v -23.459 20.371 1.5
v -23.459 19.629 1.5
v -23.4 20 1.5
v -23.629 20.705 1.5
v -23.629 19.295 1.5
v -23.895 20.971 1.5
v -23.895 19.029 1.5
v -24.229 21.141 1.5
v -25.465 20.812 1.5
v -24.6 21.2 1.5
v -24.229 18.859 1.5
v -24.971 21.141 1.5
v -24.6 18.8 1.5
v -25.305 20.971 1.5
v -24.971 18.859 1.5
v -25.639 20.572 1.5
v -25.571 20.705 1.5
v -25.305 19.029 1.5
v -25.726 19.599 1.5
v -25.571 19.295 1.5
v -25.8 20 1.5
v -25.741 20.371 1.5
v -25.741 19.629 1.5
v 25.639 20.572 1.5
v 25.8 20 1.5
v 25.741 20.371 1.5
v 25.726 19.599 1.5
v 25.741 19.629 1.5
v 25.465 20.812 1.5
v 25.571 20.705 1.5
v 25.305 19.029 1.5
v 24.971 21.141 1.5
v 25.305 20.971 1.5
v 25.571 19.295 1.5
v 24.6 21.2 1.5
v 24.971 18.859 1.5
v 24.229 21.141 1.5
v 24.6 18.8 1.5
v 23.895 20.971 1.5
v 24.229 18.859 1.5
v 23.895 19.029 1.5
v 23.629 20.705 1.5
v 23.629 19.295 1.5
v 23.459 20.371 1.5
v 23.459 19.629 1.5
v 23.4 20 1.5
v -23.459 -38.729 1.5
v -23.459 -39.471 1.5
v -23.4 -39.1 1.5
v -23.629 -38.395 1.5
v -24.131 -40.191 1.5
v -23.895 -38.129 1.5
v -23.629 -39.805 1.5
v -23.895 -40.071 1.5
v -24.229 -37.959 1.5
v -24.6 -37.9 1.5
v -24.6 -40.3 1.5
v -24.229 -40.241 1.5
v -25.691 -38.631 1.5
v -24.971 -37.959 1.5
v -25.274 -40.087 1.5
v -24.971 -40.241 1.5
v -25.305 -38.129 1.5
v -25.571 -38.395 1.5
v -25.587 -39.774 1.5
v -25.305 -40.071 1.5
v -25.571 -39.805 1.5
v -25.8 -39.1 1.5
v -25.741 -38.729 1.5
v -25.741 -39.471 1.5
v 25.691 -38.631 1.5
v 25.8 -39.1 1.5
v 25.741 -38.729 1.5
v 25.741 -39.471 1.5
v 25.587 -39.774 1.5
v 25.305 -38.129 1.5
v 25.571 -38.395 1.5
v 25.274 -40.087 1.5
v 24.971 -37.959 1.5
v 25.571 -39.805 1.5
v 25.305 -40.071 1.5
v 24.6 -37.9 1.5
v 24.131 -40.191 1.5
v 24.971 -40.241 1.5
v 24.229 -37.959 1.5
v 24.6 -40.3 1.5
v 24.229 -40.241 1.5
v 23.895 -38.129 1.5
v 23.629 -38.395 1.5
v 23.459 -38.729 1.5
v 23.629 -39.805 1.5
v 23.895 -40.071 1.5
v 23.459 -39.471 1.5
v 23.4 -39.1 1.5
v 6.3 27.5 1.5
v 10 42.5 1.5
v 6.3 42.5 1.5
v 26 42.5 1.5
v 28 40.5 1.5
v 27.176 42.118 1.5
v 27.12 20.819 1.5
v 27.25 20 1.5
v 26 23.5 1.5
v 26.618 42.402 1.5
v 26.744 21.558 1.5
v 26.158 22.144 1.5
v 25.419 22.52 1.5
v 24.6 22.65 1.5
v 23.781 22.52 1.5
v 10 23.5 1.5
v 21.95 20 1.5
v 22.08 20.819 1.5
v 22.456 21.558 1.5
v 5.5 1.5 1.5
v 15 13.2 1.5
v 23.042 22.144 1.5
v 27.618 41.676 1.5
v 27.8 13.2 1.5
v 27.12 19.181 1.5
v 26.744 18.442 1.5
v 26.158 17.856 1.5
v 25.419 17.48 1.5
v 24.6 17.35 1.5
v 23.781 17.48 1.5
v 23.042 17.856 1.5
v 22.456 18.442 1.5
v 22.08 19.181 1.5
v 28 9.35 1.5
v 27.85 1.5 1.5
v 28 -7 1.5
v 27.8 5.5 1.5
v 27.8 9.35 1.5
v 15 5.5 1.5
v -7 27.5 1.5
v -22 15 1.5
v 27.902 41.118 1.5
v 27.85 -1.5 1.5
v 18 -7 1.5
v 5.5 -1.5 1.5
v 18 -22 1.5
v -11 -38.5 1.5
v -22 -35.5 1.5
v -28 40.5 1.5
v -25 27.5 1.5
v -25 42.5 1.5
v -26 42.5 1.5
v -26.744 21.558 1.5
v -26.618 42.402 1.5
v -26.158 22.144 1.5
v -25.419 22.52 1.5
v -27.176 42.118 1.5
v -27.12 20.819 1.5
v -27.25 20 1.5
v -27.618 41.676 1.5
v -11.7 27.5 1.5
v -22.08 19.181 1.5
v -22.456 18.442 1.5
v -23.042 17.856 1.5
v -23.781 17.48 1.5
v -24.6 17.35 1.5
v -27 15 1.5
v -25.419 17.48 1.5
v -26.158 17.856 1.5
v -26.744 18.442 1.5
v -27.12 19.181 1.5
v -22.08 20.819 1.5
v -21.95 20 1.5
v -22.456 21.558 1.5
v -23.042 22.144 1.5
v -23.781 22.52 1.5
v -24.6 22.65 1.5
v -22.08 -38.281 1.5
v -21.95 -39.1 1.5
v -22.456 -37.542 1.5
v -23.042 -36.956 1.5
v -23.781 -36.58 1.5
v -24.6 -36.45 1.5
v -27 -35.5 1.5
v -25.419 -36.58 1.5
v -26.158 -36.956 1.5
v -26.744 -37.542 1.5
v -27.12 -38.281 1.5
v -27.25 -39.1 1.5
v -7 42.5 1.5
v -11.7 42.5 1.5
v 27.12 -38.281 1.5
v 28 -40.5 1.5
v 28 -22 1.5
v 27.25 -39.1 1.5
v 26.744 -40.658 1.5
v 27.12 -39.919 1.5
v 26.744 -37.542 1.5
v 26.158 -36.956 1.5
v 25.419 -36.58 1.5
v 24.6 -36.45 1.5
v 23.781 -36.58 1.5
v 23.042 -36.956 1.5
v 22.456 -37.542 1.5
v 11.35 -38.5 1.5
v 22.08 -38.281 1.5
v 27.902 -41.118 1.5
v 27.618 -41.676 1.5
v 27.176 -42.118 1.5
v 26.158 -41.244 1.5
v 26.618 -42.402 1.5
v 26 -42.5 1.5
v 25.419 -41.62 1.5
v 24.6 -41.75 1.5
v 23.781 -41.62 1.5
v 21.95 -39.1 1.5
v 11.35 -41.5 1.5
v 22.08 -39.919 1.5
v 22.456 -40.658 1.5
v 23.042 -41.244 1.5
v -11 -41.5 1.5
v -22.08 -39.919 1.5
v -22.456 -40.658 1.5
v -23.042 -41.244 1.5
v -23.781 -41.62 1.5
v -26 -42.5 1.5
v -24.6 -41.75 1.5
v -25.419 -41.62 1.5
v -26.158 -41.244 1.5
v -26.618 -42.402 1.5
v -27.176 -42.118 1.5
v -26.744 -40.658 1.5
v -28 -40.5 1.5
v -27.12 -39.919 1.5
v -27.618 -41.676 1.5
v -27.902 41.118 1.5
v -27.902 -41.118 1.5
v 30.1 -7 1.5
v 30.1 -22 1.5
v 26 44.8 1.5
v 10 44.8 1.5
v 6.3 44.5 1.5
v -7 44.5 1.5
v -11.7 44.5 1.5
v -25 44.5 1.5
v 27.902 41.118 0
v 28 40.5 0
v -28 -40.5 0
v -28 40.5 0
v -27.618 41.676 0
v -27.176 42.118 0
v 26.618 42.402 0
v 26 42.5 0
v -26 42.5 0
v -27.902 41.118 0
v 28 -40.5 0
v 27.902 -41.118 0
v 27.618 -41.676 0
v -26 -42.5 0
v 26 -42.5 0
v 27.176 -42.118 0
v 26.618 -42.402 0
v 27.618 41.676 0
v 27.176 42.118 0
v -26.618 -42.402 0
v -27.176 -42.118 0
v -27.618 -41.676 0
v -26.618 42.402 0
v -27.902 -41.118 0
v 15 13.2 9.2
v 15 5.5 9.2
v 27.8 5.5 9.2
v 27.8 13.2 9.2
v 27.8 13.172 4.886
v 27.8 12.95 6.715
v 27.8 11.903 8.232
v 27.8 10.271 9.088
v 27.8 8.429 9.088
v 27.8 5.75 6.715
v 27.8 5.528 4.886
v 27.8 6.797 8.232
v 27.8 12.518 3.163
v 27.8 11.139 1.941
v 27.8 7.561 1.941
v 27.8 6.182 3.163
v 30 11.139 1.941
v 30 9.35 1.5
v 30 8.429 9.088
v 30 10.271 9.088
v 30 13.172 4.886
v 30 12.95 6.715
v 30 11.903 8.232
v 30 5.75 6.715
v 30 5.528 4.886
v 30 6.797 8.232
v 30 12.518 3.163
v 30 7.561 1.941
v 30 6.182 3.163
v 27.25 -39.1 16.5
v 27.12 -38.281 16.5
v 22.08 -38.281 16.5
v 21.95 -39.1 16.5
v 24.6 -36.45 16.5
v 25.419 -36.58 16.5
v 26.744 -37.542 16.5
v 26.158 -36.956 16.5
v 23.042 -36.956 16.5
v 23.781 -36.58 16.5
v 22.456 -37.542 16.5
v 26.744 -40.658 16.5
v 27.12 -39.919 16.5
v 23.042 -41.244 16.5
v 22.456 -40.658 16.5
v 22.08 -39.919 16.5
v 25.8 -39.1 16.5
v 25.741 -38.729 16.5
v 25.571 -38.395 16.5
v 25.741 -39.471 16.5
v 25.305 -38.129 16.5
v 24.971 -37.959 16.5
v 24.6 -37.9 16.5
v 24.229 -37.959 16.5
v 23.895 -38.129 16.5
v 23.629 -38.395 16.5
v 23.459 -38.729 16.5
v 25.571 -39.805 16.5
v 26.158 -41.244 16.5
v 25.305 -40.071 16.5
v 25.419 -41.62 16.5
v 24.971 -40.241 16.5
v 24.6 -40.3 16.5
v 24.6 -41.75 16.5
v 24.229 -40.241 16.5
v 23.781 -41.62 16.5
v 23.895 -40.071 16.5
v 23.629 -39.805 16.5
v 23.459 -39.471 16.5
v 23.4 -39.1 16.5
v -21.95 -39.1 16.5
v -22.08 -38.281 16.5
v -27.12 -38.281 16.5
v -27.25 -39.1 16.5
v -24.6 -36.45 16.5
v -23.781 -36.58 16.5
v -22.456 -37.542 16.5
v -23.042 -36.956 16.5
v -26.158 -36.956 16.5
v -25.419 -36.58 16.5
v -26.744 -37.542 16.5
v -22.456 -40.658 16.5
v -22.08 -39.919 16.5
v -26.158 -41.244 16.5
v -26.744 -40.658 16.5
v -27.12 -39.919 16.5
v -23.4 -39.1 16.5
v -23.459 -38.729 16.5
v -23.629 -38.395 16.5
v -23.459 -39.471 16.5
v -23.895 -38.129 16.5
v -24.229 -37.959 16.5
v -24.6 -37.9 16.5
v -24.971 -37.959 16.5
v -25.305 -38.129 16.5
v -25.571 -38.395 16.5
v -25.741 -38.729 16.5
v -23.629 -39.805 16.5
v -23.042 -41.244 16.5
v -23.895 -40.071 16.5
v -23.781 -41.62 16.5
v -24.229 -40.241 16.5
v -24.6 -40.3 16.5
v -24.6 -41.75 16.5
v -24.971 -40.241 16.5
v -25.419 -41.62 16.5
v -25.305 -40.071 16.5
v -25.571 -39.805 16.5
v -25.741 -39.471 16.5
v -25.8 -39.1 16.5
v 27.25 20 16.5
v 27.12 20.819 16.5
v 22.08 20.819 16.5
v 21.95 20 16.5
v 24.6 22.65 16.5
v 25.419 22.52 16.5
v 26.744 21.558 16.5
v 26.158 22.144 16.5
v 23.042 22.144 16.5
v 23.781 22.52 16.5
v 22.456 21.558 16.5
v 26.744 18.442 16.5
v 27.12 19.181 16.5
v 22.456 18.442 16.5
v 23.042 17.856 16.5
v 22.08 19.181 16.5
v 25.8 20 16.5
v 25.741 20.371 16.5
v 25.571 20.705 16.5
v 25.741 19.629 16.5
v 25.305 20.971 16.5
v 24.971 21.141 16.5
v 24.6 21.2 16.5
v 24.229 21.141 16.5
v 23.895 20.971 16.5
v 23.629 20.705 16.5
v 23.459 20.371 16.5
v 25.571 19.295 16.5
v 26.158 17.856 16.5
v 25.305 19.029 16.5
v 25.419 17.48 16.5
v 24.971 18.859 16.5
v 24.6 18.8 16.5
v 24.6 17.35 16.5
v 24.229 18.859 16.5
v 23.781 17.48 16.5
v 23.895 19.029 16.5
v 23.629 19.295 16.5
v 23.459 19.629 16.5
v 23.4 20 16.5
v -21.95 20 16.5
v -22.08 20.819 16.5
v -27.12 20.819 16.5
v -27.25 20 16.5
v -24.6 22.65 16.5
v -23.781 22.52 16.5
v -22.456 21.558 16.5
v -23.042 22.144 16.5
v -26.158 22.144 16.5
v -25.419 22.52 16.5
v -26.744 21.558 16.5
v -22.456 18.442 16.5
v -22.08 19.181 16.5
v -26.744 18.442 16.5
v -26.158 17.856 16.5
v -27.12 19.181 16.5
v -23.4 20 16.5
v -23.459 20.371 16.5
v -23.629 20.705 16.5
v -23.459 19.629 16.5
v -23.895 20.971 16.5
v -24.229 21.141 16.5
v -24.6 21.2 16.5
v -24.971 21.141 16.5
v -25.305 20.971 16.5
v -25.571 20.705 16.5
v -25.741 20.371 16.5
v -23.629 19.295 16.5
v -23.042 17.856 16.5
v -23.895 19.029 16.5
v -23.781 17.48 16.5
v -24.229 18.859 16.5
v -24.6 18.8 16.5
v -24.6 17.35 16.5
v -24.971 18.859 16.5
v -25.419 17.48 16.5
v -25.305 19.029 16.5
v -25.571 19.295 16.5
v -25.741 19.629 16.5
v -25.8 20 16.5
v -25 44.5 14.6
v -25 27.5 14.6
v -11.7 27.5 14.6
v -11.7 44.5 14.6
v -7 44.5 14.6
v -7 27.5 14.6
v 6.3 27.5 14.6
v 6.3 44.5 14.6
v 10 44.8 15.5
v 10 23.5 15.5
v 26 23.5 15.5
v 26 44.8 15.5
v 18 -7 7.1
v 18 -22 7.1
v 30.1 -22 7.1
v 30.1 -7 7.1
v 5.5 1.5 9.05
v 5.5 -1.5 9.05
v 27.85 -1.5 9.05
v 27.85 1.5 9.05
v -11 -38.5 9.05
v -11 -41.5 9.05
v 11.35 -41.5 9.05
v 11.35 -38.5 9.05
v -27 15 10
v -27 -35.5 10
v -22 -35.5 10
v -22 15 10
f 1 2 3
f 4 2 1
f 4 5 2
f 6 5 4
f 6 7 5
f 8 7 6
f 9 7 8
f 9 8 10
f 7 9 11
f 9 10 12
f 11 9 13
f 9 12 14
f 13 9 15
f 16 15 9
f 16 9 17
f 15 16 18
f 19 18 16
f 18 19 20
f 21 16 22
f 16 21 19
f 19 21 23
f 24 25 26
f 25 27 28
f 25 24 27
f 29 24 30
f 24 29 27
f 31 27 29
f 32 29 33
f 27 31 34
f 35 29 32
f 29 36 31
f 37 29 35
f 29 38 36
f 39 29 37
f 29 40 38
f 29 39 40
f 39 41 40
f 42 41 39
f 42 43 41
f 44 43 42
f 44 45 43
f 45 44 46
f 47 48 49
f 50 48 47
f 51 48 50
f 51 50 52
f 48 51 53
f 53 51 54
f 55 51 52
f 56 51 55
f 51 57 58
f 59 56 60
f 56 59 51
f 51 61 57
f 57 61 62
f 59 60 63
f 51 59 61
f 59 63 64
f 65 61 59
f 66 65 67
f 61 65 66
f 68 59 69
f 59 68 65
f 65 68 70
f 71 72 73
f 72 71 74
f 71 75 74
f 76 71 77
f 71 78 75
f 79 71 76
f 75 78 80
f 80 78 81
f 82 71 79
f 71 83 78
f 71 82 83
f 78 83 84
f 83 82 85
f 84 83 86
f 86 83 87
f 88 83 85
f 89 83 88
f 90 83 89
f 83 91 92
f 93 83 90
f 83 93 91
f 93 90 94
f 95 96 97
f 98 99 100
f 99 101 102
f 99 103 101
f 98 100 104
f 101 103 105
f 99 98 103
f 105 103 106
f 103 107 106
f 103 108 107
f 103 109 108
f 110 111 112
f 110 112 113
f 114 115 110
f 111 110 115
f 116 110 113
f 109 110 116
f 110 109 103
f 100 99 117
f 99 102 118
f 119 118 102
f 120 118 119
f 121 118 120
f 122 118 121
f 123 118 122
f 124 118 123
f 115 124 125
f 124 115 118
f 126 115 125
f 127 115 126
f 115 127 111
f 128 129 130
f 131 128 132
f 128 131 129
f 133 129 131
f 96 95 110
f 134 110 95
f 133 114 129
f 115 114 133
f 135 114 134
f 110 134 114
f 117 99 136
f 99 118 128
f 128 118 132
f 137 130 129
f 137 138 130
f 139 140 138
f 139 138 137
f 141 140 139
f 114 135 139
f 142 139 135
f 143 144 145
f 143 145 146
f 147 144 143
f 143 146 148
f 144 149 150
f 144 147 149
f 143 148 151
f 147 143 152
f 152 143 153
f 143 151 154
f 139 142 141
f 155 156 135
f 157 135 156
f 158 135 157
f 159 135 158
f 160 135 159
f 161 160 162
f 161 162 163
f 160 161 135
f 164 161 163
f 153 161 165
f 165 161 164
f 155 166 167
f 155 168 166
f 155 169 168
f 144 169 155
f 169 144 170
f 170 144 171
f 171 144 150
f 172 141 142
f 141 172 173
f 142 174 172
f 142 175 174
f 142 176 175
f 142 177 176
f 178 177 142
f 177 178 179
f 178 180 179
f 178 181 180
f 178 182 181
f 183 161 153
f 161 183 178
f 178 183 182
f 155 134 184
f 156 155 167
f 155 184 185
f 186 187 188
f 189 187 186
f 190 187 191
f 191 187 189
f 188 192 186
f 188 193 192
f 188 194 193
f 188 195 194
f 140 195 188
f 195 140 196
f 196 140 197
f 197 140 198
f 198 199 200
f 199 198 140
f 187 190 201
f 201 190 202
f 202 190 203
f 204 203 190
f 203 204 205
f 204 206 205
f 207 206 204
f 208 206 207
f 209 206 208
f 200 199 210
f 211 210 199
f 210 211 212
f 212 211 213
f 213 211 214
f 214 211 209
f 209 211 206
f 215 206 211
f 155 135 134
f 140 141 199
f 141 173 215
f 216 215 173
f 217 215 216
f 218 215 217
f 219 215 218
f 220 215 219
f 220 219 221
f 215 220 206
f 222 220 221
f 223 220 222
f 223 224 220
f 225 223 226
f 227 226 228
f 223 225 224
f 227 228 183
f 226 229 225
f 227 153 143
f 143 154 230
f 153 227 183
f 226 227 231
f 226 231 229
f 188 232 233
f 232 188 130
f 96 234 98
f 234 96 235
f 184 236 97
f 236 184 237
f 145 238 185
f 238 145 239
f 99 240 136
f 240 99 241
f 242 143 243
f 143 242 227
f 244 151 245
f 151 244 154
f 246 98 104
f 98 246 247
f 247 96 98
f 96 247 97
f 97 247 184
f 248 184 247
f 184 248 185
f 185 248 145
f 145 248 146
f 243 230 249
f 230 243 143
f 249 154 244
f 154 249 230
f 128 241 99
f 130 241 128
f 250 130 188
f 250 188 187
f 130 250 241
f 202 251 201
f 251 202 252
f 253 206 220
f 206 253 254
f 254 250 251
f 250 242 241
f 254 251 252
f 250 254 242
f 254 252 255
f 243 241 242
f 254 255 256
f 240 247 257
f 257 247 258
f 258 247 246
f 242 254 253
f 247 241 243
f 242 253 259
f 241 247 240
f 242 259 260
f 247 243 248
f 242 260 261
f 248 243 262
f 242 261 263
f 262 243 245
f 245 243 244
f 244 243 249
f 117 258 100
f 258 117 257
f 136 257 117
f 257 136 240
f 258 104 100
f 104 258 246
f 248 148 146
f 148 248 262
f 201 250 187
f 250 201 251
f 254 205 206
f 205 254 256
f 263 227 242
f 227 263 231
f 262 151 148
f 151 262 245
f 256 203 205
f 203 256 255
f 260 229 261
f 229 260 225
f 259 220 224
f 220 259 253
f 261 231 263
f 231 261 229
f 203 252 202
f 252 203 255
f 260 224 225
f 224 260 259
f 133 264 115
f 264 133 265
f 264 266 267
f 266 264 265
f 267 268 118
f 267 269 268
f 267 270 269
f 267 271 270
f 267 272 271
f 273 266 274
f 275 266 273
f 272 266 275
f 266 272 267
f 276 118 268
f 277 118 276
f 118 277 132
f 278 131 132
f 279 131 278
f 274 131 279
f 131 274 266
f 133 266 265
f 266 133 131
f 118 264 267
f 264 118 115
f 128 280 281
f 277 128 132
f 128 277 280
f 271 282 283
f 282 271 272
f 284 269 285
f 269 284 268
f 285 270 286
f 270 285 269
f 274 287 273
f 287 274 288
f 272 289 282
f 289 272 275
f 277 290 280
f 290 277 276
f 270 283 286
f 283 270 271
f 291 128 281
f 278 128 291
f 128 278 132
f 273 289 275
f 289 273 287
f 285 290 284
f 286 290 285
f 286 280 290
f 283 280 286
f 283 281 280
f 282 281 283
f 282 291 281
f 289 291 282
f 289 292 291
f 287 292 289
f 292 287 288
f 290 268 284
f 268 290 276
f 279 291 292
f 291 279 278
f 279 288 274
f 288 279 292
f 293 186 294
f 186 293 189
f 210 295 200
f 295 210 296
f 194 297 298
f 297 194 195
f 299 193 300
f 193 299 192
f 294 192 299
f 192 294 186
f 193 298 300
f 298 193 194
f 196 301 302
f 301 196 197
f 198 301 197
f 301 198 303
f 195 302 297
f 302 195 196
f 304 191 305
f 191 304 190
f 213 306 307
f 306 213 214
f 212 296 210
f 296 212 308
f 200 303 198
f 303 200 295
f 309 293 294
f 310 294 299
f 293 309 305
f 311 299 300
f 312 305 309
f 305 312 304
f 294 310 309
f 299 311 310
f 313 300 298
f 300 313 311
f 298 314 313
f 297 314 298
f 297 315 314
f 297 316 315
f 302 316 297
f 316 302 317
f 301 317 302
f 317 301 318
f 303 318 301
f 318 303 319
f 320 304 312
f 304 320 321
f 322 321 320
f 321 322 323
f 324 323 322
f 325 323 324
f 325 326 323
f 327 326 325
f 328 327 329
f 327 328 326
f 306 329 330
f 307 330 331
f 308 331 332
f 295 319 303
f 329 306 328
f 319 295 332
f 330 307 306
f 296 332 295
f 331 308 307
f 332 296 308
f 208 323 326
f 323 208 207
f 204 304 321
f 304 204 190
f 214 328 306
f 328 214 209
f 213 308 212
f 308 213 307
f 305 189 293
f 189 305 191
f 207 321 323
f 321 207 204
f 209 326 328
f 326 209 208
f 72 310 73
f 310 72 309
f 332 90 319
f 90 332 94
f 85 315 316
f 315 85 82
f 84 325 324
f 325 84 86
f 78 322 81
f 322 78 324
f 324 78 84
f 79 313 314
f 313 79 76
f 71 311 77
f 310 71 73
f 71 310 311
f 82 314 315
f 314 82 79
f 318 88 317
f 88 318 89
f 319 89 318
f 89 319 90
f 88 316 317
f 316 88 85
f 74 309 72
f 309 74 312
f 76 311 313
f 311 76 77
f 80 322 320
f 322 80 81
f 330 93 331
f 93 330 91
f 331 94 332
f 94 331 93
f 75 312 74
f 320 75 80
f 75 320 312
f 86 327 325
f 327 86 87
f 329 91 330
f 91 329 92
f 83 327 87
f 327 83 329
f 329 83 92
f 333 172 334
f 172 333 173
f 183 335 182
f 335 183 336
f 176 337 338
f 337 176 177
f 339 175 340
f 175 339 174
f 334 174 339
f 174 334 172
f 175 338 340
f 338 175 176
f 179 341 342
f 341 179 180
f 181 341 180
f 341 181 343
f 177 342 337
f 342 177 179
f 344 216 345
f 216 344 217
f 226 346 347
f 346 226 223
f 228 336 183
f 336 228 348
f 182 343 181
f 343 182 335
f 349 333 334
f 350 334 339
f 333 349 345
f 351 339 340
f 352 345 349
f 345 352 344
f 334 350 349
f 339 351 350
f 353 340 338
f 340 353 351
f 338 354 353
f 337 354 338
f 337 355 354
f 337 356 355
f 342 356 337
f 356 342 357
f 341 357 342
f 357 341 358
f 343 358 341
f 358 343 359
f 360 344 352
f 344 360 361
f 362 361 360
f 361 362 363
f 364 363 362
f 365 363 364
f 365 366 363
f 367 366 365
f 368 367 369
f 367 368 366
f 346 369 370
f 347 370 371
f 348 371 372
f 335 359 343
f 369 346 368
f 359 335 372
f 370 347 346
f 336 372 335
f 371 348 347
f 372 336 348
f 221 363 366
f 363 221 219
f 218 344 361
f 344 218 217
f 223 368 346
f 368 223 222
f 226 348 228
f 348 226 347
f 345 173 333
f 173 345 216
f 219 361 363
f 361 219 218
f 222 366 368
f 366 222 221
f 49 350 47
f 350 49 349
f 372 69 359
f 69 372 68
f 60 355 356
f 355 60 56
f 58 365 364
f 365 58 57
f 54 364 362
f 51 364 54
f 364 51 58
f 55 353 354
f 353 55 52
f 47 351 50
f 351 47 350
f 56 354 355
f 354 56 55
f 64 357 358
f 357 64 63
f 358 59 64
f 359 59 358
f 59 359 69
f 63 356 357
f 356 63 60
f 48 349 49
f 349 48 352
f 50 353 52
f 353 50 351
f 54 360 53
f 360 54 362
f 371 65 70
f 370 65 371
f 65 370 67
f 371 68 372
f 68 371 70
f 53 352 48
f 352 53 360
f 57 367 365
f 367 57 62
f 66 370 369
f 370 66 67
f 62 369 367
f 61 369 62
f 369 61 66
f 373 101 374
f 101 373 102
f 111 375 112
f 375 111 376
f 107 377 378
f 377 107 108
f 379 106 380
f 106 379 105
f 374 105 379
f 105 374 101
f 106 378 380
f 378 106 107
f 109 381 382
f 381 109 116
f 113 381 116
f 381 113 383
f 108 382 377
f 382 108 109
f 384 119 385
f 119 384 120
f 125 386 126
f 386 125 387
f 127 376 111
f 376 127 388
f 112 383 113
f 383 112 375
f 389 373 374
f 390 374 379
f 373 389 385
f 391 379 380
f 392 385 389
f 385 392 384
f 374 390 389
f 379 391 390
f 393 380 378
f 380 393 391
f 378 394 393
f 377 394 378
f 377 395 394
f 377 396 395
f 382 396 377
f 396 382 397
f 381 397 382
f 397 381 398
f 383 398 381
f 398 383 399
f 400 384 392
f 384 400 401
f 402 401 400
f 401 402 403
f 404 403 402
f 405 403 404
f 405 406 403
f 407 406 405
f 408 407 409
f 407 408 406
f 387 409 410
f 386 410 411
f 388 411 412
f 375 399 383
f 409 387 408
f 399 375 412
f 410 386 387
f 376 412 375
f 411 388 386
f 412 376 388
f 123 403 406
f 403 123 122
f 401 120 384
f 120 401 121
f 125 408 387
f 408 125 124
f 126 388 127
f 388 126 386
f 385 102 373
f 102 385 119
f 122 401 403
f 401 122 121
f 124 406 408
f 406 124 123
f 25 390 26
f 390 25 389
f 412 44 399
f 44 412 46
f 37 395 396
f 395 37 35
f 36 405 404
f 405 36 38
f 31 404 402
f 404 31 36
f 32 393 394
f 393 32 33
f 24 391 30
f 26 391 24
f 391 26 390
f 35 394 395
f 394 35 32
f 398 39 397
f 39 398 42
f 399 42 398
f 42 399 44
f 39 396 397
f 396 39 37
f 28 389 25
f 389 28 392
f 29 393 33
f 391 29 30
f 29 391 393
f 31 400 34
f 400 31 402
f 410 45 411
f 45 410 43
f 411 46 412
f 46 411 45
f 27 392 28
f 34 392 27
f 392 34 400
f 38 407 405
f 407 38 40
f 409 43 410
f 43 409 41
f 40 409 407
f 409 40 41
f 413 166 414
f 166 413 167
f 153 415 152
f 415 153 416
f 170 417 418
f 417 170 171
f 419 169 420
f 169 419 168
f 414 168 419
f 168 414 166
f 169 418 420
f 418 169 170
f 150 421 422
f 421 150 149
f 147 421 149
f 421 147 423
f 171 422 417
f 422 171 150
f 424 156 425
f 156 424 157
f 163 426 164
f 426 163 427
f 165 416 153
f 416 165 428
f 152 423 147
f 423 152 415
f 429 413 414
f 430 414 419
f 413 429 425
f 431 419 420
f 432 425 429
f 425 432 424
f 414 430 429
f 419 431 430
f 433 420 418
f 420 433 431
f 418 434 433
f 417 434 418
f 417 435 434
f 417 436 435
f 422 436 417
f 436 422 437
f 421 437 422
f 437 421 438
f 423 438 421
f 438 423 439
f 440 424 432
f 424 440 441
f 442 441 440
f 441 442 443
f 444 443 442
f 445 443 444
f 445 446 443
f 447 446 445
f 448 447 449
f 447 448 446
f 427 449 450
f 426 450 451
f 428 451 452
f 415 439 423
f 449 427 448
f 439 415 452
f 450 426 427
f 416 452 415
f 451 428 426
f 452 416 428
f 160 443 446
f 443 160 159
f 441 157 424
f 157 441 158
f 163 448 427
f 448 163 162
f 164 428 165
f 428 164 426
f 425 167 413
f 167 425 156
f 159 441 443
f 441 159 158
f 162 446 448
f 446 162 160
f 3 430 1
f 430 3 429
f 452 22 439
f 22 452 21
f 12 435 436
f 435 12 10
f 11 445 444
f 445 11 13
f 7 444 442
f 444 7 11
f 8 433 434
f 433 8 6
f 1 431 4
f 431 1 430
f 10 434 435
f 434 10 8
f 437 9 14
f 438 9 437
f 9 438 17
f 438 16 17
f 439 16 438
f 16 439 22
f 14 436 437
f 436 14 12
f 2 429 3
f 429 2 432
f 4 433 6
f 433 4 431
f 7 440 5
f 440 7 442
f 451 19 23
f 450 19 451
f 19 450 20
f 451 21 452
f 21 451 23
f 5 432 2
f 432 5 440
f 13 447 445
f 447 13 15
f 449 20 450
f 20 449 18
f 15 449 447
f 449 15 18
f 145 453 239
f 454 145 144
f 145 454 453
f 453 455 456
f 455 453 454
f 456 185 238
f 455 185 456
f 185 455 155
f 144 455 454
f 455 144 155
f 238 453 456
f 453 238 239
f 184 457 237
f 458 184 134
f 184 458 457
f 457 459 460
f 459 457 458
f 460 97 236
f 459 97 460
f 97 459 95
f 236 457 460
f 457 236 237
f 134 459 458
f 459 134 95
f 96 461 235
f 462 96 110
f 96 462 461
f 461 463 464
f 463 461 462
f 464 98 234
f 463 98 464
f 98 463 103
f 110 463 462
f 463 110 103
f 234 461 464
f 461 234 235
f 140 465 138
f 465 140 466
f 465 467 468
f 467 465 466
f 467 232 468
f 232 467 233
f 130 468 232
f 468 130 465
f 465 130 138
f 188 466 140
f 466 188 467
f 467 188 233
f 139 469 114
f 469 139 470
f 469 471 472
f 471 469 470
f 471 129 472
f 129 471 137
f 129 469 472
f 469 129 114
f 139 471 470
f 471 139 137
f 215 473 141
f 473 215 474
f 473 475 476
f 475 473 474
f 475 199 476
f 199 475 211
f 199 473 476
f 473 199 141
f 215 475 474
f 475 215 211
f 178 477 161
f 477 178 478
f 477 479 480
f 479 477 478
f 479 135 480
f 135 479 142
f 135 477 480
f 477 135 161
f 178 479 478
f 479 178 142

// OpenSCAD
module pi_board_holes(pi_dims, hole_positions, hole_diameter, fn) {
    echo(hole_diameter);
    for( pos = hole_positions)
        translate([pos[0], pos[1], pos[2]]) 
            cylinder(d=hole_diameter, h=pos[2], $fn=fn);
}

module pi_board(pi_dims, corner_radius, pi_hole_positions, hole_diameter, fn) {
    x = pi_dims[0]/2 - corner_radius;
    y = pi_dims[1]/2 - corner_radius;
//    translate([0, 0, pi_dims[2]/2])
        difference(){
            hull() {
                translate([ x, y, 0]) cylinder(r=corner_radius, h=pi_dims[2], $fn=fn);
                translate([-x, y, 0]) cylinder(r=corner_radius, h=pi_dims[2], $fn=fn);
                translate([ x,-y, 0]) cylinder(r=corner_radius, h=pi_dims[2], $fn=fn);
                translate([-x,-y, 0]) cylinder(r=corner_radius, h=pi_dims[2], $fn=fn);
            }
            pi_board_holes(pi_dims, pi_hole_positions, hole_diameter, fn);
        };
}

module pi_top_posts(hole_positions, post_h, post_d, hole_d, fn) {
    for( pos = hole_positions)
        translate([pos[0], pos[1], pos[2]]) 
            difference(){
                cylinder(d=post_d, h=post_h, $fn=fn);
                cylinder(d=hole_d, h=post_h, $fn=fn);
            };
}

module usb_plug() {
    cube([13.3, 17.0, 13.1]);
}

module eth_plug() {
    cube([16.0, 21.3, 14.0]);
}

module hdmi_socket() {
    cube([12.1, 15.0, 5.6]);
}

module ribbon_socket() {
    cube([22.35, 3.0, 7.55]);
}

module audio_socket() {
    cube([12.8, 7.7, 7.7]);
    translate([12.8, 3.85, 3.85])
        rotate([0, 90, 0])
            cylinder(d=7.7, h=2.2);
}

module forty_pin_header() {
    cube([5.0, 50.5, 8.5]);
}

// params
function pi_post_diameter() = 5.3;
function pi_top_post_height() = 15.0;
function pi_dims() = [56.0, 85.0, 1.5];
function pi_corner_radius() = 2.0;
function pi_hole_margin_inset() = 3.4;
function pi_hole_diameter() = 2.4;
function pi_hole_positions() = [
    [ 24.6,-39.1, 1.5],
    [-24.6,-39.1, 1.5],
    [ 24.6, 20.0, 1.5],
    [-24.6, 20.0, 1.5]
];

module pi_assembly() {
    fn = 20;

    pi_board(pi_dims(), pi_corner_radius(), pi_hole_positions(), pi_hole_diameter(), fn);

    translate([  -25.0, 27.5, 1.5]) usb_plug();
    translate([  -7.0,  27.5, 1.5]) usb_plug();
    translate([  10.0,  23.5, 1.5]) eth_plug();
    translate([  18.0, -22.0, 1.5]) hdmi_socket();
    translate([   5.5,  -1.5, 1.5]) ribbon_socket();
    translate([ -11.0, -41.5, 1.5]) ribbon_socket();
    translate([  15.0, 5.5, 1.5]) audio_socket();
    translate([   -27,  -35.5, 1.5]) forty_pin_header();

    pi_top_posts(
        pi_hole_positions(),
        pi_top_post_height(),
        pi_post_diameter(),
        pi_hole_diameter(), fn);
}

pi_assembly();
